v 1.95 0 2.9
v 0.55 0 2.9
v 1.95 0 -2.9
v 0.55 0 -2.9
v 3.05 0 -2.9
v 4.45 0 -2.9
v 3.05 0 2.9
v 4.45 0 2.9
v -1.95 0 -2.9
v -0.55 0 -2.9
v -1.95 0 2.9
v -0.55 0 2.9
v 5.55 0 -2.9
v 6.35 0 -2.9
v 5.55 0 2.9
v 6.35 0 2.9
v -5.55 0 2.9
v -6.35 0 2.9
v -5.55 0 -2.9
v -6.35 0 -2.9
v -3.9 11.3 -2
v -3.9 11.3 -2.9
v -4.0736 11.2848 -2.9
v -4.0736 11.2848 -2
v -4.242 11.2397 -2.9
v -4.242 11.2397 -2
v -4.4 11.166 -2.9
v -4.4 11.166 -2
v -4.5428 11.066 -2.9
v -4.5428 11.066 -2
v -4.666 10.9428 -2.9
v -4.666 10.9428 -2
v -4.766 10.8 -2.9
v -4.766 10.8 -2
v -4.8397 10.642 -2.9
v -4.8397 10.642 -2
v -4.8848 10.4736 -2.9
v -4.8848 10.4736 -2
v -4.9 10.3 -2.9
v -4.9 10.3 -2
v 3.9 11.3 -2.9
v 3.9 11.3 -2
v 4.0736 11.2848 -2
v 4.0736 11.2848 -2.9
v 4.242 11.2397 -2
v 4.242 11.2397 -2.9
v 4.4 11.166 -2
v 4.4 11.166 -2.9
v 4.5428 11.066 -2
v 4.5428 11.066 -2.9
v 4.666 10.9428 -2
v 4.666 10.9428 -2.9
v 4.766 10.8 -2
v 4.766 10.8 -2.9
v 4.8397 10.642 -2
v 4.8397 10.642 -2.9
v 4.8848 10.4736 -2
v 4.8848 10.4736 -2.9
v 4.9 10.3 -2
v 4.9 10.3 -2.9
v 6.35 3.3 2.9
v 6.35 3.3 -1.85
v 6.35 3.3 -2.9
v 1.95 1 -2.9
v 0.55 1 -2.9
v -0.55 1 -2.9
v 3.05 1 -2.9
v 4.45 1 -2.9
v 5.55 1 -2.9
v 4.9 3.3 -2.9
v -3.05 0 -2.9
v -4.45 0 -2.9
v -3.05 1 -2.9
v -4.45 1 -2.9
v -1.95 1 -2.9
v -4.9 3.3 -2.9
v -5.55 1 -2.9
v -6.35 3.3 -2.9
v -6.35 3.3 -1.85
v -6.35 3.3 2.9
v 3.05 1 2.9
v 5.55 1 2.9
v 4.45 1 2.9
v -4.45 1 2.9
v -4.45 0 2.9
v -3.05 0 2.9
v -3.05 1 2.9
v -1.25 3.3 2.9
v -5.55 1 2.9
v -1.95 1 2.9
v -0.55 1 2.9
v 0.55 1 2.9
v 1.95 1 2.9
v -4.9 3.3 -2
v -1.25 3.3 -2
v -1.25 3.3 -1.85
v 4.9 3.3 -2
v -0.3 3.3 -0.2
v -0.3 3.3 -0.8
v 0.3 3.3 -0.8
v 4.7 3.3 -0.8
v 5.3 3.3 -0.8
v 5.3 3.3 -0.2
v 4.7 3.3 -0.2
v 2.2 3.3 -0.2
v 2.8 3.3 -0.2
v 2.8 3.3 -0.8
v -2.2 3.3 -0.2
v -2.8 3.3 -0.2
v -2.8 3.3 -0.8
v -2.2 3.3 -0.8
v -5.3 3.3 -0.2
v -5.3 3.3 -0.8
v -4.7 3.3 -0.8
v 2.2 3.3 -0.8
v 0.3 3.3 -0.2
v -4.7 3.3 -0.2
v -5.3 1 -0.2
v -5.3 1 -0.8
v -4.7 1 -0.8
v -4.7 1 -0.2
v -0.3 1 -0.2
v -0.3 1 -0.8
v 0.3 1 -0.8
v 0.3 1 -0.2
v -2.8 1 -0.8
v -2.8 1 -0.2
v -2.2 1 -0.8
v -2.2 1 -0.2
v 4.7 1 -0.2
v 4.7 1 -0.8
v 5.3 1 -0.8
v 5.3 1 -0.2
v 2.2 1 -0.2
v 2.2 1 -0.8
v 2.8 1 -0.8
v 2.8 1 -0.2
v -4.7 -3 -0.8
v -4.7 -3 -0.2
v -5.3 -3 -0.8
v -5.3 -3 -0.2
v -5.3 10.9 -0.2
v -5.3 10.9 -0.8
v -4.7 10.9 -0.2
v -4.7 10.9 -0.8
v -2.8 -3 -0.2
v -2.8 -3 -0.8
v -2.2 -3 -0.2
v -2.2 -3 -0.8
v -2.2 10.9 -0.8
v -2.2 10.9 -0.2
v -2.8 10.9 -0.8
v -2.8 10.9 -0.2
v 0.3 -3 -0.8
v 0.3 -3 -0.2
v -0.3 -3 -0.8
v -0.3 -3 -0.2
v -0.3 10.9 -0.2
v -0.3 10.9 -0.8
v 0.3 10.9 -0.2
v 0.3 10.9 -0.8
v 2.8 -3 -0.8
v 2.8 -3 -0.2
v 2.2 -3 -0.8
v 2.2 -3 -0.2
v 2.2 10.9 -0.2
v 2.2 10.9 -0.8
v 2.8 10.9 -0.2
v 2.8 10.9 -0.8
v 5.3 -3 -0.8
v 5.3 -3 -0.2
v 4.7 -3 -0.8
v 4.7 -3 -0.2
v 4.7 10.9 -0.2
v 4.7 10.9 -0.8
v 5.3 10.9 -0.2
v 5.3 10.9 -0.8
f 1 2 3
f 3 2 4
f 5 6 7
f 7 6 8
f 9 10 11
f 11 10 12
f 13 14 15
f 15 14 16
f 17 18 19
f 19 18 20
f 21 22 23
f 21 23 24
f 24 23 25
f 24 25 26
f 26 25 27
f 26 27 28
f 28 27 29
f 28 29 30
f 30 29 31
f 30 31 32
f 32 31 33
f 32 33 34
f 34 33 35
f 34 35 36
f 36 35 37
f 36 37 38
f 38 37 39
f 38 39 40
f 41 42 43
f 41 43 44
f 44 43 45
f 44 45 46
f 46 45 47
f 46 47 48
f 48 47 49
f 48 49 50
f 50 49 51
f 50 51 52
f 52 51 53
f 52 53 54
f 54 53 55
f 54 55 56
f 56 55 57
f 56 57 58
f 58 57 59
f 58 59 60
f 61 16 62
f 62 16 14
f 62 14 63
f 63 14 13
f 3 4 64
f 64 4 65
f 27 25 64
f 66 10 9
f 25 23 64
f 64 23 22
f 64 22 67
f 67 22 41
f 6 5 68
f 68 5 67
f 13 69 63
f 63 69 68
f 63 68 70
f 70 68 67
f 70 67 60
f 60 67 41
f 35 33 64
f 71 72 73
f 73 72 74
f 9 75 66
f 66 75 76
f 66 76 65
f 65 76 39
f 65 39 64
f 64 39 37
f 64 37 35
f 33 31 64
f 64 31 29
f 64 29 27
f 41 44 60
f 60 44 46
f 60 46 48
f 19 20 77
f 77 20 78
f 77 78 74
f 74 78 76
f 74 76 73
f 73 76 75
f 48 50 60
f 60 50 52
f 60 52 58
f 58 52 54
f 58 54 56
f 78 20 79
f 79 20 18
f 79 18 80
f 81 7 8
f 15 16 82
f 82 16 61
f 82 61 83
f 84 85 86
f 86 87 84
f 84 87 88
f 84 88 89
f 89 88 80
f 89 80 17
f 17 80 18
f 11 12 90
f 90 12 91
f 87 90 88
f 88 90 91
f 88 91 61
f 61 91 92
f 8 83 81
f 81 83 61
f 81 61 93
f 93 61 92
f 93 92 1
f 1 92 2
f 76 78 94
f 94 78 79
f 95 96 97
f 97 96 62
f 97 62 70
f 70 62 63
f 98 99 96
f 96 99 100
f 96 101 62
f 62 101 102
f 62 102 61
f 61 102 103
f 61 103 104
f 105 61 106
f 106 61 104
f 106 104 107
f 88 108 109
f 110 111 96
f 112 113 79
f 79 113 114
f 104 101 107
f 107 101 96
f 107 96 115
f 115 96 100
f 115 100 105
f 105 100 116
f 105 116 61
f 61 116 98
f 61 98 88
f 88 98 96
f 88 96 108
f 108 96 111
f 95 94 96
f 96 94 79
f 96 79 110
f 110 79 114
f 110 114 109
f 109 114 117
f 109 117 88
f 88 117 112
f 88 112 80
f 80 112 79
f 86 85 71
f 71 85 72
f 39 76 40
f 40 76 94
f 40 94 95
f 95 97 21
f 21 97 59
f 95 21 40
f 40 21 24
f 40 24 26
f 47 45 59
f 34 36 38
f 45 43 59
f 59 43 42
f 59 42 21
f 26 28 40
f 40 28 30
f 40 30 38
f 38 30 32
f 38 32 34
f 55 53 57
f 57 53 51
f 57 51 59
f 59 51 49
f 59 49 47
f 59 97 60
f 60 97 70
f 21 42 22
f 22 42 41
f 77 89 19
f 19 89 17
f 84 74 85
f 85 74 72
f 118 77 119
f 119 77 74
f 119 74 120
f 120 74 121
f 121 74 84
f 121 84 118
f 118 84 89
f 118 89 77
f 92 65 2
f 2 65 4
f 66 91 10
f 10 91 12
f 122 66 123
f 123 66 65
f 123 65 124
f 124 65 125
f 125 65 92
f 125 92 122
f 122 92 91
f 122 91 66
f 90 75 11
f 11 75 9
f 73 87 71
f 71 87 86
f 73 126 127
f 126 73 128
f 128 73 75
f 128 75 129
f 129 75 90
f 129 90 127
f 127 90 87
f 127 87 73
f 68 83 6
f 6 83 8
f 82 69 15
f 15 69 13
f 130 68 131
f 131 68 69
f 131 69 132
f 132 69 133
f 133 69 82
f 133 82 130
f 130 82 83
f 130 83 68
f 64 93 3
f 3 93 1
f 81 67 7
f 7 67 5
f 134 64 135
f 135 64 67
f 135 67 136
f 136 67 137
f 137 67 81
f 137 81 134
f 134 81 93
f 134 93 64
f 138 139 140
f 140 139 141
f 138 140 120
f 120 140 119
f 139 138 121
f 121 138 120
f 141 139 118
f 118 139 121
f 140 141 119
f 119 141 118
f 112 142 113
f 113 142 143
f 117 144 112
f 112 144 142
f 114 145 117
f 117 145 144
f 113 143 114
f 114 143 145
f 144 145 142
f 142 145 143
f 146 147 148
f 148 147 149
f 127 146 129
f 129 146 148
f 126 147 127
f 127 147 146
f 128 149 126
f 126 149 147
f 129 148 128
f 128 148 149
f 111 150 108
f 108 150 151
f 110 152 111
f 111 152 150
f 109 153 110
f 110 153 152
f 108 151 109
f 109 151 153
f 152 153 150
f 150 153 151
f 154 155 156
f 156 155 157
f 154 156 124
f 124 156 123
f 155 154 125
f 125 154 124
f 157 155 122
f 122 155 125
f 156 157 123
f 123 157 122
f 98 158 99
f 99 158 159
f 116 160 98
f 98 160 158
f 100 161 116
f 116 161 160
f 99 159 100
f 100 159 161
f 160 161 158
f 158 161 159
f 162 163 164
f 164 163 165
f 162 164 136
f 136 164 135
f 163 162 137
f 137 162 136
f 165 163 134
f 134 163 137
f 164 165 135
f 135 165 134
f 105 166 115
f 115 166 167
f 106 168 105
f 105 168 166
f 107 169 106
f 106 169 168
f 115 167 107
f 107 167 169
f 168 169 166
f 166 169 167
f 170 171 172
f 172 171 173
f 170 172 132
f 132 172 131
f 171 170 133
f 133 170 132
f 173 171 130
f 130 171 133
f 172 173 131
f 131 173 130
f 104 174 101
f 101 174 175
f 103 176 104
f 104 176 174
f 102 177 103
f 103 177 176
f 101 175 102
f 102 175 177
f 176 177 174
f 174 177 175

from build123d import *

# Parameters (mm, degrees)
CROQUIS1_W                   = 12.7
CROQUIS1_H                   = 5.8
SALIENTE_EXTRUIR1_DEPTH      = 3.3
CROQUIS2_W                   = 9.8
CROQUIS2_H                   = 0.9
SALIENTE_EXTRUIR2_DEPTH      = 8
REDONDEO1_R                  = 1
REDONDEO2_R                  = 1
CROQUIS3_W                   = 1.1
CROQUIS3_H                   = 5.8
CORTAR_EXTRUIR1_DEPTH        = 1
SALIENTE_EXTRUIR3_DEPTH      = 4
SALIENTE_EXTRUIR3_DEPTH_BACK = 9.9
CROQUIS4_W                   = 0.6
CROQUIS4_H                   = 0.6


with BuildPart() as part:
    # Croquis1 → Saliente-Extruir1 (new body)
    with BuildSketch(Plane(origin=(0, 0, 0), x_dir=(1, 0, 0), z_dir=(0, 1, 0))):
        Rectangle(CROQUIS1_W, CROQUIS1_H)
    extrude(amount=SALIENTE_EXTRUIR1_DEPTH)

    # Croquis2 → Saliente-Extruir2 (add)
    with BuildSketch(Plane(origin=(0, 3.3, 0), x_dir=(1, 0, 0), z_dir=(0, 1, 0))):
        with Locations((0, 2.45)):
            Rectangle(CROQUIS2_W, CROQUIS2_H)
    extrude(amount=SALIENTE_EXTRUIR2_DEPTH)

    # Redondeo1
    redondeo1_edges = [part.edges().sort_by_distance(p)[0] for p in [
        (4.9, 11.3, -2.45),
    ]]
    fillet(redondeo1_edges, radius=REDONDEO1_R)

    # Redondeo2
    redondeo2_edges = [part.edges().sort_by_distance(p)[0] for p in [
        (-4.9, 11.3, -2.45),
    ]]
    fillet(redondeo2_edges, radius=REDONDEO2_R)

    # Croquis3 → Cortar-Extruir1 (cut)
    with BuildSketch(Plane.XZ):
        with Locations((-5, 0)):
            Rectangle(CROQUIS3_W, CROQUIS3_H)
        with Locations((-2.5, 0)):
            Rectangle(CROQUIS3_W, CROQUIS3_H)
        Rectangle(CROQUIS3_W, CROQUIS3_H)
        with Locations((2.5, 0)):
            Rectangle(CROQUIS3_W, CROQUIS3_H)
        with Locations((5, 0)):
            Rectangle(CROQUIS3_W, CROQUIS3_H)
    extrude(amount=-CORTAR_EXTRUIR1_DEPTH, mode=Mode.SUBTRACT)

    # Croquis4 → Saliente-Extruir3 (add, two sides: drawn at the far end of the back side and taken through both)
    with BuildSketch(Plane(origin=(0, 1, 0), x_dir=(-1, 0, 0), z_dir=(0, -1, 0)).offset(-SALIENTE_EXTRUIR3_DEPTH_BACK)):
        with Locations((5, 0.5)):
            Rectangle(CROQUIS4_W, CROQUIS4_H)
        with Locations((2.5, 0.5)):
            Rectangle(CROQUIS4_W, CROQUIS4_H)
        with Locations((0, 0.5)):
            Rectangle(CROQUIS4_W, CROQUIS4_H)
        with Locations((-2.5, 0.5)):
            Rectangle(CROQUIS4_W, CROQUIS4_H)
        with Locations((-5, 0.5)):
            Rectangle(CROQUIS4_W, CROQUIS4_H)
    extrude(amount=SALIENTE_EXTRUIR3_DEPTH + SALIENTE_EXTRUIR3_DEPTH_BACK)


solid = part.part
